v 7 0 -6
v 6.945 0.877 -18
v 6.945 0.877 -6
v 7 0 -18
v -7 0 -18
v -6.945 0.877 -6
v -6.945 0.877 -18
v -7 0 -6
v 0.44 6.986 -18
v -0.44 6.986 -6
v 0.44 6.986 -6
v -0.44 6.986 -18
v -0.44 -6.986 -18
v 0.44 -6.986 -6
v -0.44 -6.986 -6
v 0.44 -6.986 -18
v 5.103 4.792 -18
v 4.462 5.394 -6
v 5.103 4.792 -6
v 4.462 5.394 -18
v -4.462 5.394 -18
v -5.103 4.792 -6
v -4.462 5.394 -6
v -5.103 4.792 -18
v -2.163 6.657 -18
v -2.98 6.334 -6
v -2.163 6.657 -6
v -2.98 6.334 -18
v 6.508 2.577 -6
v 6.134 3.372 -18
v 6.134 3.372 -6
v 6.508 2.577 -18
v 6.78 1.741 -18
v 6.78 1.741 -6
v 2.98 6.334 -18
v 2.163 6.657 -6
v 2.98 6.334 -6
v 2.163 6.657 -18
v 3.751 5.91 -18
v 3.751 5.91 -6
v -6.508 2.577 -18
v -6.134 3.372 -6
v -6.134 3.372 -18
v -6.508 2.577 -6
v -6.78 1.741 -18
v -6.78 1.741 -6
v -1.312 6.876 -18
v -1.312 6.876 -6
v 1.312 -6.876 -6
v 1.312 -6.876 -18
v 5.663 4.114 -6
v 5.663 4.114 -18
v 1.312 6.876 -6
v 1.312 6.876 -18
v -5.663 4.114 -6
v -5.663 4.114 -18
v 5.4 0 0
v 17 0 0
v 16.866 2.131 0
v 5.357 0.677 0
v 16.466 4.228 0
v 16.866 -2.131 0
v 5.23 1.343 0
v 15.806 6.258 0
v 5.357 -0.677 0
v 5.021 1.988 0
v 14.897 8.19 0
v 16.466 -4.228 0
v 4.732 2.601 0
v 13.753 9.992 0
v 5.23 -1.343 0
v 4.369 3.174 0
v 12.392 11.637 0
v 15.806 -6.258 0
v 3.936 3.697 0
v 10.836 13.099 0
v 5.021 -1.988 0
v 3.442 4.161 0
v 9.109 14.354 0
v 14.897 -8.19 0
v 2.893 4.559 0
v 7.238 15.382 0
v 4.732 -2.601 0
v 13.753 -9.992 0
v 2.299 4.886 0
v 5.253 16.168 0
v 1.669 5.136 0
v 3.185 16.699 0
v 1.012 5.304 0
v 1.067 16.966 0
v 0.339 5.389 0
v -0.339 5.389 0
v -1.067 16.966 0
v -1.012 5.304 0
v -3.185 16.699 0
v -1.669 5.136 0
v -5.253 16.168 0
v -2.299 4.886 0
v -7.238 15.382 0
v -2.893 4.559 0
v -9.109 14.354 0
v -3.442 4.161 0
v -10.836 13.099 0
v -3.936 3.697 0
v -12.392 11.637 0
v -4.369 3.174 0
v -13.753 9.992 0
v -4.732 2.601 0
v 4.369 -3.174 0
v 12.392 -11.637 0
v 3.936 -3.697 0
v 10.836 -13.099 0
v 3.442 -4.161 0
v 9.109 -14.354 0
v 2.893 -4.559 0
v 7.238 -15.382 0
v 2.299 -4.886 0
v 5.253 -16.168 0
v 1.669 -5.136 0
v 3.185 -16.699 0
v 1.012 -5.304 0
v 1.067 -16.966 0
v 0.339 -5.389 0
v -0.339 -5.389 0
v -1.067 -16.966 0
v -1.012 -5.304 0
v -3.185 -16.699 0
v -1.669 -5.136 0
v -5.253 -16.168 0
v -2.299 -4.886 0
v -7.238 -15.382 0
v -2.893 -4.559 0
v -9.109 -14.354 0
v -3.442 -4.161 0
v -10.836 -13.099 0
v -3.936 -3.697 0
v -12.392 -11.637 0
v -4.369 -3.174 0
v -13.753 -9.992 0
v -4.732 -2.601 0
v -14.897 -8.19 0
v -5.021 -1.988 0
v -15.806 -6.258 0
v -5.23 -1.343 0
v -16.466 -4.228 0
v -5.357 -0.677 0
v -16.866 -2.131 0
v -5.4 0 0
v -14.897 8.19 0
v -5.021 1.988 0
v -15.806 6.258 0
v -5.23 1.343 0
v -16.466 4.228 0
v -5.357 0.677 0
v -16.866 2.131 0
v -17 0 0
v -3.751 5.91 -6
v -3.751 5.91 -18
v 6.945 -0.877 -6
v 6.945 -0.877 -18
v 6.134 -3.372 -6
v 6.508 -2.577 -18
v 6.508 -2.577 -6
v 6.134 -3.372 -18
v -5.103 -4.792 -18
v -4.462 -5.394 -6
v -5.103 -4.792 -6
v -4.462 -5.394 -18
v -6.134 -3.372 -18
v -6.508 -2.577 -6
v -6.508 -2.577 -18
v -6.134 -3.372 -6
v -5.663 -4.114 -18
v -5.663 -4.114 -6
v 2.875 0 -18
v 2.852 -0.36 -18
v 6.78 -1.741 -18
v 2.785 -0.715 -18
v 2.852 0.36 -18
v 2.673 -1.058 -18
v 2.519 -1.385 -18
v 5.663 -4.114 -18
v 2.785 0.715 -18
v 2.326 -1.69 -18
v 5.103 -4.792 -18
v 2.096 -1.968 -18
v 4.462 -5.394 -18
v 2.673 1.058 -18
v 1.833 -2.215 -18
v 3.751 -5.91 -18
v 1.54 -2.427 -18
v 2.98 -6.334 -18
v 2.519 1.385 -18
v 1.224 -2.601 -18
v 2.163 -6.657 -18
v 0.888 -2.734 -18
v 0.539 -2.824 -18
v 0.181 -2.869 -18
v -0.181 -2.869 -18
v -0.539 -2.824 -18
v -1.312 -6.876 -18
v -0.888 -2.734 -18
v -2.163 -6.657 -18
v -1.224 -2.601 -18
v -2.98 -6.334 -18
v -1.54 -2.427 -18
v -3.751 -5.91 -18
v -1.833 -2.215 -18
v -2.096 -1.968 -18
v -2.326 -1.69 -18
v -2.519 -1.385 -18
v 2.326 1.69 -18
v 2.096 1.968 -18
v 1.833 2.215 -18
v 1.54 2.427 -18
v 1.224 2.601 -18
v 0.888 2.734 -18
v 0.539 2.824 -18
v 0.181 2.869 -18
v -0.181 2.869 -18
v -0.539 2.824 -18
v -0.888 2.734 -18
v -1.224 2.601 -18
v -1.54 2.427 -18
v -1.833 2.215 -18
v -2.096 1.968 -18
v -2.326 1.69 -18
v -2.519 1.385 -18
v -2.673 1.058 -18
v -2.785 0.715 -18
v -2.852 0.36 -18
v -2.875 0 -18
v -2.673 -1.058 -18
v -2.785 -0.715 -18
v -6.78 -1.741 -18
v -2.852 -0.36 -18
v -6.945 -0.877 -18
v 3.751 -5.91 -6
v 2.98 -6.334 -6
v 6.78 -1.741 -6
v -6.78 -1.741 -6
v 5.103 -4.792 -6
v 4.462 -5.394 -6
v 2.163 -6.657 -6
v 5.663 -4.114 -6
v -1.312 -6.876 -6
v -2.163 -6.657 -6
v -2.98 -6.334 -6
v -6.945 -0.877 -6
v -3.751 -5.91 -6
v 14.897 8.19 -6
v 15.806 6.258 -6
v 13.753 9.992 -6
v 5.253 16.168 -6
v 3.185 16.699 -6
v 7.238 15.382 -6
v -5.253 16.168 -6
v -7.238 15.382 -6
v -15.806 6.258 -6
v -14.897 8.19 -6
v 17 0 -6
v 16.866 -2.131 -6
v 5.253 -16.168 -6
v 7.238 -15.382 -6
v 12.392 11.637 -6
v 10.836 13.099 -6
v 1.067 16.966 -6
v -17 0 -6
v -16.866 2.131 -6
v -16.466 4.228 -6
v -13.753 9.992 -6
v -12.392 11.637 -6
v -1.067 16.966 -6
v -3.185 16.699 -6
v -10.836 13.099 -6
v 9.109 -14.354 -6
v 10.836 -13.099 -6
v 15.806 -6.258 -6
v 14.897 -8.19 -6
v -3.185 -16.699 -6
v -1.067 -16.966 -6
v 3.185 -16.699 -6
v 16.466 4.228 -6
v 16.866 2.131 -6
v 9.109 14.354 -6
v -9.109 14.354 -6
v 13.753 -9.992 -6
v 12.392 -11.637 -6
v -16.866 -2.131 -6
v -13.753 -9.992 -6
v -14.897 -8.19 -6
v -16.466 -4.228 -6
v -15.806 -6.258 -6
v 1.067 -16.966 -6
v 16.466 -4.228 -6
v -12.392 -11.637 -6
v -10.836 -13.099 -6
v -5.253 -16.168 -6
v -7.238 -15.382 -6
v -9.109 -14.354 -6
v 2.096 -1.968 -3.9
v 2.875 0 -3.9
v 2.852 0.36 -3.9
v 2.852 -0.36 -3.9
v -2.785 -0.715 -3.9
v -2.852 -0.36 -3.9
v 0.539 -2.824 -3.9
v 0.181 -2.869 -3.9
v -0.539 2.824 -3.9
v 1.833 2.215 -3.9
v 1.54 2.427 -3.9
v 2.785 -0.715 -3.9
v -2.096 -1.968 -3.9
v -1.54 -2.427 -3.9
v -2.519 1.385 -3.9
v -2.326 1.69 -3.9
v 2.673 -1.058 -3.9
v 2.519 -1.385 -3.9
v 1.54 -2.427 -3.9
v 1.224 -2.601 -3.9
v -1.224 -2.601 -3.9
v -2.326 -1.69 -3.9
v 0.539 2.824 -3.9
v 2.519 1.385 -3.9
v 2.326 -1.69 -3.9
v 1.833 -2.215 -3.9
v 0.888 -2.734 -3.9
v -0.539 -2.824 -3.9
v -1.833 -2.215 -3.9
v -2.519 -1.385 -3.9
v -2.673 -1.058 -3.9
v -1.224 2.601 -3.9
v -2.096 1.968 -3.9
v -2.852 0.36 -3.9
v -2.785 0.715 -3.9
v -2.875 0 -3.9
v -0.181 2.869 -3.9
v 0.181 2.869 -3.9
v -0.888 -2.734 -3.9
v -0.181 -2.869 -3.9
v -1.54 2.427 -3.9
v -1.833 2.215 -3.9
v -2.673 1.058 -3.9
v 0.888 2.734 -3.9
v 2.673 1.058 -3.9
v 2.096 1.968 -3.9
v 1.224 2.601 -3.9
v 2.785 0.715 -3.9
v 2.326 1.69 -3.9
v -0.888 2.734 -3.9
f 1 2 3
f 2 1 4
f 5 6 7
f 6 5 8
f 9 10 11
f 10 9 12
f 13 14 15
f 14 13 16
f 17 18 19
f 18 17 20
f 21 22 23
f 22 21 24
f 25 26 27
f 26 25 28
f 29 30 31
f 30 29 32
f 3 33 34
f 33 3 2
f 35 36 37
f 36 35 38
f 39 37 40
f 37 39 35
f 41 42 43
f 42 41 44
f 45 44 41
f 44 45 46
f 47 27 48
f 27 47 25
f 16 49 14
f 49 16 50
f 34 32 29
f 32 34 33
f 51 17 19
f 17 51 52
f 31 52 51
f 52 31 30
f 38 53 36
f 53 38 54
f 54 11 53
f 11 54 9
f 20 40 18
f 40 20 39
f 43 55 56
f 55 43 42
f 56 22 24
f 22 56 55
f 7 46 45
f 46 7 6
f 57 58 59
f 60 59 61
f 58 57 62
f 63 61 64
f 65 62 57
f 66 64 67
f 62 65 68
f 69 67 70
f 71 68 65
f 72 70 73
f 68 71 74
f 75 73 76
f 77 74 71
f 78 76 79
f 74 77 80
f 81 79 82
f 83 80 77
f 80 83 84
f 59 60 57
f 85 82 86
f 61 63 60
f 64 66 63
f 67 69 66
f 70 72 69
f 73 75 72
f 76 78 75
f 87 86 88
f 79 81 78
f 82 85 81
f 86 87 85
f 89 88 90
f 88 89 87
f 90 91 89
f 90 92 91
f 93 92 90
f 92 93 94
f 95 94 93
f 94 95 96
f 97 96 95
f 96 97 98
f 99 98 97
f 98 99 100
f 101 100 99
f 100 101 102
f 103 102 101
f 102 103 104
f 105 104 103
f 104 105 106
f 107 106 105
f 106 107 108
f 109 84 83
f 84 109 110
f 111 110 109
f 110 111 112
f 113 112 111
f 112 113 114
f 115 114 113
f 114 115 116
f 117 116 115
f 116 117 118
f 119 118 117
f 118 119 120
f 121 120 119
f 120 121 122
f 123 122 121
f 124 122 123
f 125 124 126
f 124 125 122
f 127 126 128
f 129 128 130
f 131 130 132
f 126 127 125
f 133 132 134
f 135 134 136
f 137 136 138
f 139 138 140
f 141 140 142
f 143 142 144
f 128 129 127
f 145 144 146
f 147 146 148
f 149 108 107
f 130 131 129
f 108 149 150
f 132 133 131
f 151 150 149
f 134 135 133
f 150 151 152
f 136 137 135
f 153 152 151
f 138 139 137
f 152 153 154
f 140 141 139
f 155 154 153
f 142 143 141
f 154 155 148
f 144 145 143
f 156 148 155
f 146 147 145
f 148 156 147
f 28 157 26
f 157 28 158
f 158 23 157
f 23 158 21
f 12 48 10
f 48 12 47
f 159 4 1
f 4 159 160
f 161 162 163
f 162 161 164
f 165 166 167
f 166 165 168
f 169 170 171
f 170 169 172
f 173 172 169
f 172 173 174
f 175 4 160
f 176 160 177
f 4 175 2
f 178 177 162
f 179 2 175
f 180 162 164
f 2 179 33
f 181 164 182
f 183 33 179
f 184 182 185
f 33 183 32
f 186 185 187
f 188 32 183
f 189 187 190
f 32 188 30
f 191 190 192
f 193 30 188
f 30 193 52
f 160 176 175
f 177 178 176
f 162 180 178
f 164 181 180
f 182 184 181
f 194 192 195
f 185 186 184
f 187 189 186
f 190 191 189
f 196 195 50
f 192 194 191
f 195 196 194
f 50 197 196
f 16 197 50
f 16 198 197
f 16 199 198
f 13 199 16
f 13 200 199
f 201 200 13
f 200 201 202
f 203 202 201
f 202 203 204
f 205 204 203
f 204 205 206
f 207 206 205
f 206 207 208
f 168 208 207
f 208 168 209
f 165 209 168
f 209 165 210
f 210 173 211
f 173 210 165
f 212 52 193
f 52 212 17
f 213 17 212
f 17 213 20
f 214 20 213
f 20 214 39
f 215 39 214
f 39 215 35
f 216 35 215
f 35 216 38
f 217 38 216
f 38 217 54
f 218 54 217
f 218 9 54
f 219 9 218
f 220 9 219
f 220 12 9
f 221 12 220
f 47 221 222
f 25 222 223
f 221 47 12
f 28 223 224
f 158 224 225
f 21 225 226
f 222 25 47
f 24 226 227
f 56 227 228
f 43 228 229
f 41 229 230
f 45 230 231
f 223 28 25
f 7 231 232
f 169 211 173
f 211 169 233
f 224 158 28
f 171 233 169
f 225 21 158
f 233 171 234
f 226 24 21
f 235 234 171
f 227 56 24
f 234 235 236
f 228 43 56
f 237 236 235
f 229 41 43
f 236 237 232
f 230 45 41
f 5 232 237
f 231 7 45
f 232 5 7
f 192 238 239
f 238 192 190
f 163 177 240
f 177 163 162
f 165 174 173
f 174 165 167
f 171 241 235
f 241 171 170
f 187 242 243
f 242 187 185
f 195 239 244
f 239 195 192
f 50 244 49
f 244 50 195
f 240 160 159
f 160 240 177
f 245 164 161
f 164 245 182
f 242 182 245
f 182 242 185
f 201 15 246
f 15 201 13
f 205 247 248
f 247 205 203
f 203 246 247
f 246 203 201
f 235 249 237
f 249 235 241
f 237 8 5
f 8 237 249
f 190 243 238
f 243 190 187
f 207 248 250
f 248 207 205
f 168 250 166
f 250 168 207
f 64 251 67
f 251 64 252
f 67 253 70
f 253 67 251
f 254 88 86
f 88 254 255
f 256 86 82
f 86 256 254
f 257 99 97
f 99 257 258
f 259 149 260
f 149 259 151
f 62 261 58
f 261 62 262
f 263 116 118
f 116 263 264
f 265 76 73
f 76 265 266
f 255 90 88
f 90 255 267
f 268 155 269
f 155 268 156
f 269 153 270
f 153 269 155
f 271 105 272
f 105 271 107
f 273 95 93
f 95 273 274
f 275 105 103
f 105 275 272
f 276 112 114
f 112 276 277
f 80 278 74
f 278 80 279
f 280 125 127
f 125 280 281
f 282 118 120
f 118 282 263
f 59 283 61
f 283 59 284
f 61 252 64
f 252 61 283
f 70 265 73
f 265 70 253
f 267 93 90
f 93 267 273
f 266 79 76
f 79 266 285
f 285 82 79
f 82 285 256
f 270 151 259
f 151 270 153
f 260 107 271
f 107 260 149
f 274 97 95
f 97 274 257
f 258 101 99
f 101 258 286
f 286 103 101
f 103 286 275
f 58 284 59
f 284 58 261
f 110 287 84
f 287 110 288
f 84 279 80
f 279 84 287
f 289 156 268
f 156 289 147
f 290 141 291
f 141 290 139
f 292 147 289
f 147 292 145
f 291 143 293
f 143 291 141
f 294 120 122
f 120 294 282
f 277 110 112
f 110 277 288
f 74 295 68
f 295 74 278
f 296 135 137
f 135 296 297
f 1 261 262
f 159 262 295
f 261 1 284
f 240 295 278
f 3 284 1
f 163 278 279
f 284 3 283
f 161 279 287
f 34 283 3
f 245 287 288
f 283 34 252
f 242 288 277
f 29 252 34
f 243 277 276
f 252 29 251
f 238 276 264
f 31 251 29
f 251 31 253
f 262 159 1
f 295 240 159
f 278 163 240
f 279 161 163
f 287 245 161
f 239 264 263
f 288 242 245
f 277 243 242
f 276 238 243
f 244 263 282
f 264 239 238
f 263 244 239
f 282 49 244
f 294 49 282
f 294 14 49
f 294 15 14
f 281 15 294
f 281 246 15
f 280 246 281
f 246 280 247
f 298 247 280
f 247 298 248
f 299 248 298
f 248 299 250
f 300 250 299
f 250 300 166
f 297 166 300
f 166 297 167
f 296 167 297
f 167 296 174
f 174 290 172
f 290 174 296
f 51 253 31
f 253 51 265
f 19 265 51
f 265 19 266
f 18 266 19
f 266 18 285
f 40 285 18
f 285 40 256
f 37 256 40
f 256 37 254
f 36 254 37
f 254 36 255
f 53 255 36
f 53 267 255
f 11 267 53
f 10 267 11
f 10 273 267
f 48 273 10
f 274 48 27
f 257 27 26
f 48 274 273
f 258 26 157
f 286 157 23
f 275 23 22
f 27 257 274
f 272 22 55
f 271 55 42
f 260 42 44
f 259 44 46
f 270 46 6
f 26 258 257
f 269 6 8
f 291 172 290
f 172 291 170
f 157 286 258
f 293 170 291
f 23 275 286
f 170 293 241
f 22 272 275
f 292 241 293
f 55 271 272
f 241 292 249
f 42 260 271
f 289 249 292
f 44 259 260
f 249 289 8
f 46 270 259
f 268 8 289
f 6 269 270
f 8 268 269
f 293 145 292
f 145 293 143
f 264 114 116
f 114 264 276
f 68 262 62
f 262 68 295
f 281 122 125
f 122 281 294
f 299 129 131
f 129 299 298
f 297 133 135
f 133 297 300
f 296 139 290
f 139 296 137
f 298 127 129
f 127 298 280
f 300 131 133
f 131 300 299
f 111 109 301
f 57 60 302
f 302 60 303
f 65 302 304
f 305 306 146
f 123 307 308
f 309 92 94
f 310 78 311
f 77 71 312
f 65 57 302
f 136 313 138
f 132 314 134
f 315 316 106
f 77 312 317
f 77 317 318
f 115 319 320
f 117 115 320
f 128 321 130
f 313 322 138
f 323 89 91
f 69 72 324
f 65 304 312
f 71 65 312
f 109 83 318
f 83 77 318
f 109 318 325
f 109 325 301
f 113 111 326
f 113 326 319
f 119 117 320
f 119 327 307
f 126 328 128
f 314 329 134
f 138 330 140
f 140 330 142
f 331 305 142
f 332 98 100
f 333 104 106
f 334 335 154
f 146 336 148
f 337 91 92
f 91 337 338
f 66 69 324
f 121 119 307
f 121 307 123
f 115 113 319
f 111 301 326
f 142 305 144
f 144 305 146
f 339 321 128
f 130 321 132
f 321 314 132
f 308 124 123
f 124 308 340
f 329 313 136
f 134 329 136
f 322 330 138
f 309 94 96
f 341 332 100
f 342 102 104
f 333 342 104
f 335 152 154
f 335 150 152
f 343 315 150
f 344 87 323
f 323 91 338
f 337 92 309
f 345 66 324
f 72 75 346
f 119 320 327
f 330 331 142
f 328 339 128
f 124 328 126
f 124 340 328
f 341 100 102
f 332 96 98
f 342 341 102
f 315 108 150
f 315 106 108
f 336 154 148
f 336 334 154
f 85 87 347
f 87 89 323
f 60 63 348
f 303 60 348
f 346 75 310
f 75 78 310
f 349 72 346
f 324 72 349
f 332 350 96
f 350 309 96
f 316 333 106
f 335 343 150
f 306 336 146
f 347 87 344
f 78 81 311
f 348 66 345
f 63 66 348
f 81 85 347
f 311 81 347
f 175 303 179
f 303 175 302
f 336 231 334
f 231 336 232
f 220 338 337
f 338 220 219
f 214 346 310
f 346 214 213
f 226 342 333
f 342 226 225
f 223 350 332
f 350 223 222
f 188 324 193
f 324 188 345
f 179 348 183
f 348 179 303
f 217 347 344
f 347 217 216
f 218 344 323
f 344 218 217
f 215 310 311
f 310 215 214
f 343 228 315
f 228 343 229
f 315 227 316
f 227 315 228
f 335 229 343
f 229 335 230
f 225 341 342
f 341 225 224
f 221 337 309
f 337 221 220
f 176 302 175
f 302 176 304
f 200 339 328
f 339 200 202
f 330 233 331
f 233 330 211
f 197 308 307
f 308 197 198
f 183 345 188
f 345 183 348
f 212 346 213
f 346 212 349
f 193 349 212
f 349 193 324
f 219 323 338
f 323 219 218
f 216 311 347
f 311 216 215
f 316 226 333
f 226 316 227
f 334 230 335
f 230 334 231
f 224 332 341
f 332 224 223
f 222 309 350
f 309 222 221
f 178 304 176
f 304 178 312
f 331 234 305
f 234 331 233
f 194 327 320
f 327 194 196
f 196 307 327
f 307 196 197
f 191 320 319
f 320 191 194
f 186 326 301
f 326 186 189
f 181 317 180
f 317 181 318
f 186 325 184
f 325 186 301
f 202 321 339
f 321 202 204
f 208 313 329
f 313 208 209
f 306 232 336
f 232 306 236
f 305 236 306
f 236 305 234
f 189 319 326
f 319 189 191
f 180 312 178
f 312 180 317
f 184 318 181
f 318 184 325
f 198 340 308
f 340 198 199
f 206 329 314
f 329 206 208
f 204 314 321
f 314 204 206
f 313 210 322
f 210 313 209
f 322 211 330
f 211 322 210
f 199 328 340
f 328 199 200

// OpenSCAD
$fn = 50;


difference() {
	union() {
		translate(v = [0, 0, -18.0000000000]) {
			cylinder(h = 18, r = 7.0000000000);
		}
		translate(v = [0, 0, -6.0000000000]) {
			cylinder(h = 6, r = 17.0000000000);
		}
	}
	union() {
		translate(v = [0, 0, 0]) {
			rotate(a = [0, 0, 0]) {
				difference() {
					union() {
						#translate(v = [0, 0, -18.0000000000]) {
							cylinder(h = 18, r = 2.6000000000);
						}
						#translate(v = [0, 0, -3.9000000000]) {
							cylinder(h = 3.9000000000, r = 7.0000000000, r1 = 2.8750000000, r2 = 5.4000000000);
						}
						#translate(v = [0, 0, -18.0000000000]) {
							cylinder(h = 18, r = 2.8750000000);
						}
						#translate(v = [0, 0, -18.0000000000]) {
							cylinder(h = 18, r = 2.6000000000);
						}
					}
					union();
				}
			}
		}
	}
}
